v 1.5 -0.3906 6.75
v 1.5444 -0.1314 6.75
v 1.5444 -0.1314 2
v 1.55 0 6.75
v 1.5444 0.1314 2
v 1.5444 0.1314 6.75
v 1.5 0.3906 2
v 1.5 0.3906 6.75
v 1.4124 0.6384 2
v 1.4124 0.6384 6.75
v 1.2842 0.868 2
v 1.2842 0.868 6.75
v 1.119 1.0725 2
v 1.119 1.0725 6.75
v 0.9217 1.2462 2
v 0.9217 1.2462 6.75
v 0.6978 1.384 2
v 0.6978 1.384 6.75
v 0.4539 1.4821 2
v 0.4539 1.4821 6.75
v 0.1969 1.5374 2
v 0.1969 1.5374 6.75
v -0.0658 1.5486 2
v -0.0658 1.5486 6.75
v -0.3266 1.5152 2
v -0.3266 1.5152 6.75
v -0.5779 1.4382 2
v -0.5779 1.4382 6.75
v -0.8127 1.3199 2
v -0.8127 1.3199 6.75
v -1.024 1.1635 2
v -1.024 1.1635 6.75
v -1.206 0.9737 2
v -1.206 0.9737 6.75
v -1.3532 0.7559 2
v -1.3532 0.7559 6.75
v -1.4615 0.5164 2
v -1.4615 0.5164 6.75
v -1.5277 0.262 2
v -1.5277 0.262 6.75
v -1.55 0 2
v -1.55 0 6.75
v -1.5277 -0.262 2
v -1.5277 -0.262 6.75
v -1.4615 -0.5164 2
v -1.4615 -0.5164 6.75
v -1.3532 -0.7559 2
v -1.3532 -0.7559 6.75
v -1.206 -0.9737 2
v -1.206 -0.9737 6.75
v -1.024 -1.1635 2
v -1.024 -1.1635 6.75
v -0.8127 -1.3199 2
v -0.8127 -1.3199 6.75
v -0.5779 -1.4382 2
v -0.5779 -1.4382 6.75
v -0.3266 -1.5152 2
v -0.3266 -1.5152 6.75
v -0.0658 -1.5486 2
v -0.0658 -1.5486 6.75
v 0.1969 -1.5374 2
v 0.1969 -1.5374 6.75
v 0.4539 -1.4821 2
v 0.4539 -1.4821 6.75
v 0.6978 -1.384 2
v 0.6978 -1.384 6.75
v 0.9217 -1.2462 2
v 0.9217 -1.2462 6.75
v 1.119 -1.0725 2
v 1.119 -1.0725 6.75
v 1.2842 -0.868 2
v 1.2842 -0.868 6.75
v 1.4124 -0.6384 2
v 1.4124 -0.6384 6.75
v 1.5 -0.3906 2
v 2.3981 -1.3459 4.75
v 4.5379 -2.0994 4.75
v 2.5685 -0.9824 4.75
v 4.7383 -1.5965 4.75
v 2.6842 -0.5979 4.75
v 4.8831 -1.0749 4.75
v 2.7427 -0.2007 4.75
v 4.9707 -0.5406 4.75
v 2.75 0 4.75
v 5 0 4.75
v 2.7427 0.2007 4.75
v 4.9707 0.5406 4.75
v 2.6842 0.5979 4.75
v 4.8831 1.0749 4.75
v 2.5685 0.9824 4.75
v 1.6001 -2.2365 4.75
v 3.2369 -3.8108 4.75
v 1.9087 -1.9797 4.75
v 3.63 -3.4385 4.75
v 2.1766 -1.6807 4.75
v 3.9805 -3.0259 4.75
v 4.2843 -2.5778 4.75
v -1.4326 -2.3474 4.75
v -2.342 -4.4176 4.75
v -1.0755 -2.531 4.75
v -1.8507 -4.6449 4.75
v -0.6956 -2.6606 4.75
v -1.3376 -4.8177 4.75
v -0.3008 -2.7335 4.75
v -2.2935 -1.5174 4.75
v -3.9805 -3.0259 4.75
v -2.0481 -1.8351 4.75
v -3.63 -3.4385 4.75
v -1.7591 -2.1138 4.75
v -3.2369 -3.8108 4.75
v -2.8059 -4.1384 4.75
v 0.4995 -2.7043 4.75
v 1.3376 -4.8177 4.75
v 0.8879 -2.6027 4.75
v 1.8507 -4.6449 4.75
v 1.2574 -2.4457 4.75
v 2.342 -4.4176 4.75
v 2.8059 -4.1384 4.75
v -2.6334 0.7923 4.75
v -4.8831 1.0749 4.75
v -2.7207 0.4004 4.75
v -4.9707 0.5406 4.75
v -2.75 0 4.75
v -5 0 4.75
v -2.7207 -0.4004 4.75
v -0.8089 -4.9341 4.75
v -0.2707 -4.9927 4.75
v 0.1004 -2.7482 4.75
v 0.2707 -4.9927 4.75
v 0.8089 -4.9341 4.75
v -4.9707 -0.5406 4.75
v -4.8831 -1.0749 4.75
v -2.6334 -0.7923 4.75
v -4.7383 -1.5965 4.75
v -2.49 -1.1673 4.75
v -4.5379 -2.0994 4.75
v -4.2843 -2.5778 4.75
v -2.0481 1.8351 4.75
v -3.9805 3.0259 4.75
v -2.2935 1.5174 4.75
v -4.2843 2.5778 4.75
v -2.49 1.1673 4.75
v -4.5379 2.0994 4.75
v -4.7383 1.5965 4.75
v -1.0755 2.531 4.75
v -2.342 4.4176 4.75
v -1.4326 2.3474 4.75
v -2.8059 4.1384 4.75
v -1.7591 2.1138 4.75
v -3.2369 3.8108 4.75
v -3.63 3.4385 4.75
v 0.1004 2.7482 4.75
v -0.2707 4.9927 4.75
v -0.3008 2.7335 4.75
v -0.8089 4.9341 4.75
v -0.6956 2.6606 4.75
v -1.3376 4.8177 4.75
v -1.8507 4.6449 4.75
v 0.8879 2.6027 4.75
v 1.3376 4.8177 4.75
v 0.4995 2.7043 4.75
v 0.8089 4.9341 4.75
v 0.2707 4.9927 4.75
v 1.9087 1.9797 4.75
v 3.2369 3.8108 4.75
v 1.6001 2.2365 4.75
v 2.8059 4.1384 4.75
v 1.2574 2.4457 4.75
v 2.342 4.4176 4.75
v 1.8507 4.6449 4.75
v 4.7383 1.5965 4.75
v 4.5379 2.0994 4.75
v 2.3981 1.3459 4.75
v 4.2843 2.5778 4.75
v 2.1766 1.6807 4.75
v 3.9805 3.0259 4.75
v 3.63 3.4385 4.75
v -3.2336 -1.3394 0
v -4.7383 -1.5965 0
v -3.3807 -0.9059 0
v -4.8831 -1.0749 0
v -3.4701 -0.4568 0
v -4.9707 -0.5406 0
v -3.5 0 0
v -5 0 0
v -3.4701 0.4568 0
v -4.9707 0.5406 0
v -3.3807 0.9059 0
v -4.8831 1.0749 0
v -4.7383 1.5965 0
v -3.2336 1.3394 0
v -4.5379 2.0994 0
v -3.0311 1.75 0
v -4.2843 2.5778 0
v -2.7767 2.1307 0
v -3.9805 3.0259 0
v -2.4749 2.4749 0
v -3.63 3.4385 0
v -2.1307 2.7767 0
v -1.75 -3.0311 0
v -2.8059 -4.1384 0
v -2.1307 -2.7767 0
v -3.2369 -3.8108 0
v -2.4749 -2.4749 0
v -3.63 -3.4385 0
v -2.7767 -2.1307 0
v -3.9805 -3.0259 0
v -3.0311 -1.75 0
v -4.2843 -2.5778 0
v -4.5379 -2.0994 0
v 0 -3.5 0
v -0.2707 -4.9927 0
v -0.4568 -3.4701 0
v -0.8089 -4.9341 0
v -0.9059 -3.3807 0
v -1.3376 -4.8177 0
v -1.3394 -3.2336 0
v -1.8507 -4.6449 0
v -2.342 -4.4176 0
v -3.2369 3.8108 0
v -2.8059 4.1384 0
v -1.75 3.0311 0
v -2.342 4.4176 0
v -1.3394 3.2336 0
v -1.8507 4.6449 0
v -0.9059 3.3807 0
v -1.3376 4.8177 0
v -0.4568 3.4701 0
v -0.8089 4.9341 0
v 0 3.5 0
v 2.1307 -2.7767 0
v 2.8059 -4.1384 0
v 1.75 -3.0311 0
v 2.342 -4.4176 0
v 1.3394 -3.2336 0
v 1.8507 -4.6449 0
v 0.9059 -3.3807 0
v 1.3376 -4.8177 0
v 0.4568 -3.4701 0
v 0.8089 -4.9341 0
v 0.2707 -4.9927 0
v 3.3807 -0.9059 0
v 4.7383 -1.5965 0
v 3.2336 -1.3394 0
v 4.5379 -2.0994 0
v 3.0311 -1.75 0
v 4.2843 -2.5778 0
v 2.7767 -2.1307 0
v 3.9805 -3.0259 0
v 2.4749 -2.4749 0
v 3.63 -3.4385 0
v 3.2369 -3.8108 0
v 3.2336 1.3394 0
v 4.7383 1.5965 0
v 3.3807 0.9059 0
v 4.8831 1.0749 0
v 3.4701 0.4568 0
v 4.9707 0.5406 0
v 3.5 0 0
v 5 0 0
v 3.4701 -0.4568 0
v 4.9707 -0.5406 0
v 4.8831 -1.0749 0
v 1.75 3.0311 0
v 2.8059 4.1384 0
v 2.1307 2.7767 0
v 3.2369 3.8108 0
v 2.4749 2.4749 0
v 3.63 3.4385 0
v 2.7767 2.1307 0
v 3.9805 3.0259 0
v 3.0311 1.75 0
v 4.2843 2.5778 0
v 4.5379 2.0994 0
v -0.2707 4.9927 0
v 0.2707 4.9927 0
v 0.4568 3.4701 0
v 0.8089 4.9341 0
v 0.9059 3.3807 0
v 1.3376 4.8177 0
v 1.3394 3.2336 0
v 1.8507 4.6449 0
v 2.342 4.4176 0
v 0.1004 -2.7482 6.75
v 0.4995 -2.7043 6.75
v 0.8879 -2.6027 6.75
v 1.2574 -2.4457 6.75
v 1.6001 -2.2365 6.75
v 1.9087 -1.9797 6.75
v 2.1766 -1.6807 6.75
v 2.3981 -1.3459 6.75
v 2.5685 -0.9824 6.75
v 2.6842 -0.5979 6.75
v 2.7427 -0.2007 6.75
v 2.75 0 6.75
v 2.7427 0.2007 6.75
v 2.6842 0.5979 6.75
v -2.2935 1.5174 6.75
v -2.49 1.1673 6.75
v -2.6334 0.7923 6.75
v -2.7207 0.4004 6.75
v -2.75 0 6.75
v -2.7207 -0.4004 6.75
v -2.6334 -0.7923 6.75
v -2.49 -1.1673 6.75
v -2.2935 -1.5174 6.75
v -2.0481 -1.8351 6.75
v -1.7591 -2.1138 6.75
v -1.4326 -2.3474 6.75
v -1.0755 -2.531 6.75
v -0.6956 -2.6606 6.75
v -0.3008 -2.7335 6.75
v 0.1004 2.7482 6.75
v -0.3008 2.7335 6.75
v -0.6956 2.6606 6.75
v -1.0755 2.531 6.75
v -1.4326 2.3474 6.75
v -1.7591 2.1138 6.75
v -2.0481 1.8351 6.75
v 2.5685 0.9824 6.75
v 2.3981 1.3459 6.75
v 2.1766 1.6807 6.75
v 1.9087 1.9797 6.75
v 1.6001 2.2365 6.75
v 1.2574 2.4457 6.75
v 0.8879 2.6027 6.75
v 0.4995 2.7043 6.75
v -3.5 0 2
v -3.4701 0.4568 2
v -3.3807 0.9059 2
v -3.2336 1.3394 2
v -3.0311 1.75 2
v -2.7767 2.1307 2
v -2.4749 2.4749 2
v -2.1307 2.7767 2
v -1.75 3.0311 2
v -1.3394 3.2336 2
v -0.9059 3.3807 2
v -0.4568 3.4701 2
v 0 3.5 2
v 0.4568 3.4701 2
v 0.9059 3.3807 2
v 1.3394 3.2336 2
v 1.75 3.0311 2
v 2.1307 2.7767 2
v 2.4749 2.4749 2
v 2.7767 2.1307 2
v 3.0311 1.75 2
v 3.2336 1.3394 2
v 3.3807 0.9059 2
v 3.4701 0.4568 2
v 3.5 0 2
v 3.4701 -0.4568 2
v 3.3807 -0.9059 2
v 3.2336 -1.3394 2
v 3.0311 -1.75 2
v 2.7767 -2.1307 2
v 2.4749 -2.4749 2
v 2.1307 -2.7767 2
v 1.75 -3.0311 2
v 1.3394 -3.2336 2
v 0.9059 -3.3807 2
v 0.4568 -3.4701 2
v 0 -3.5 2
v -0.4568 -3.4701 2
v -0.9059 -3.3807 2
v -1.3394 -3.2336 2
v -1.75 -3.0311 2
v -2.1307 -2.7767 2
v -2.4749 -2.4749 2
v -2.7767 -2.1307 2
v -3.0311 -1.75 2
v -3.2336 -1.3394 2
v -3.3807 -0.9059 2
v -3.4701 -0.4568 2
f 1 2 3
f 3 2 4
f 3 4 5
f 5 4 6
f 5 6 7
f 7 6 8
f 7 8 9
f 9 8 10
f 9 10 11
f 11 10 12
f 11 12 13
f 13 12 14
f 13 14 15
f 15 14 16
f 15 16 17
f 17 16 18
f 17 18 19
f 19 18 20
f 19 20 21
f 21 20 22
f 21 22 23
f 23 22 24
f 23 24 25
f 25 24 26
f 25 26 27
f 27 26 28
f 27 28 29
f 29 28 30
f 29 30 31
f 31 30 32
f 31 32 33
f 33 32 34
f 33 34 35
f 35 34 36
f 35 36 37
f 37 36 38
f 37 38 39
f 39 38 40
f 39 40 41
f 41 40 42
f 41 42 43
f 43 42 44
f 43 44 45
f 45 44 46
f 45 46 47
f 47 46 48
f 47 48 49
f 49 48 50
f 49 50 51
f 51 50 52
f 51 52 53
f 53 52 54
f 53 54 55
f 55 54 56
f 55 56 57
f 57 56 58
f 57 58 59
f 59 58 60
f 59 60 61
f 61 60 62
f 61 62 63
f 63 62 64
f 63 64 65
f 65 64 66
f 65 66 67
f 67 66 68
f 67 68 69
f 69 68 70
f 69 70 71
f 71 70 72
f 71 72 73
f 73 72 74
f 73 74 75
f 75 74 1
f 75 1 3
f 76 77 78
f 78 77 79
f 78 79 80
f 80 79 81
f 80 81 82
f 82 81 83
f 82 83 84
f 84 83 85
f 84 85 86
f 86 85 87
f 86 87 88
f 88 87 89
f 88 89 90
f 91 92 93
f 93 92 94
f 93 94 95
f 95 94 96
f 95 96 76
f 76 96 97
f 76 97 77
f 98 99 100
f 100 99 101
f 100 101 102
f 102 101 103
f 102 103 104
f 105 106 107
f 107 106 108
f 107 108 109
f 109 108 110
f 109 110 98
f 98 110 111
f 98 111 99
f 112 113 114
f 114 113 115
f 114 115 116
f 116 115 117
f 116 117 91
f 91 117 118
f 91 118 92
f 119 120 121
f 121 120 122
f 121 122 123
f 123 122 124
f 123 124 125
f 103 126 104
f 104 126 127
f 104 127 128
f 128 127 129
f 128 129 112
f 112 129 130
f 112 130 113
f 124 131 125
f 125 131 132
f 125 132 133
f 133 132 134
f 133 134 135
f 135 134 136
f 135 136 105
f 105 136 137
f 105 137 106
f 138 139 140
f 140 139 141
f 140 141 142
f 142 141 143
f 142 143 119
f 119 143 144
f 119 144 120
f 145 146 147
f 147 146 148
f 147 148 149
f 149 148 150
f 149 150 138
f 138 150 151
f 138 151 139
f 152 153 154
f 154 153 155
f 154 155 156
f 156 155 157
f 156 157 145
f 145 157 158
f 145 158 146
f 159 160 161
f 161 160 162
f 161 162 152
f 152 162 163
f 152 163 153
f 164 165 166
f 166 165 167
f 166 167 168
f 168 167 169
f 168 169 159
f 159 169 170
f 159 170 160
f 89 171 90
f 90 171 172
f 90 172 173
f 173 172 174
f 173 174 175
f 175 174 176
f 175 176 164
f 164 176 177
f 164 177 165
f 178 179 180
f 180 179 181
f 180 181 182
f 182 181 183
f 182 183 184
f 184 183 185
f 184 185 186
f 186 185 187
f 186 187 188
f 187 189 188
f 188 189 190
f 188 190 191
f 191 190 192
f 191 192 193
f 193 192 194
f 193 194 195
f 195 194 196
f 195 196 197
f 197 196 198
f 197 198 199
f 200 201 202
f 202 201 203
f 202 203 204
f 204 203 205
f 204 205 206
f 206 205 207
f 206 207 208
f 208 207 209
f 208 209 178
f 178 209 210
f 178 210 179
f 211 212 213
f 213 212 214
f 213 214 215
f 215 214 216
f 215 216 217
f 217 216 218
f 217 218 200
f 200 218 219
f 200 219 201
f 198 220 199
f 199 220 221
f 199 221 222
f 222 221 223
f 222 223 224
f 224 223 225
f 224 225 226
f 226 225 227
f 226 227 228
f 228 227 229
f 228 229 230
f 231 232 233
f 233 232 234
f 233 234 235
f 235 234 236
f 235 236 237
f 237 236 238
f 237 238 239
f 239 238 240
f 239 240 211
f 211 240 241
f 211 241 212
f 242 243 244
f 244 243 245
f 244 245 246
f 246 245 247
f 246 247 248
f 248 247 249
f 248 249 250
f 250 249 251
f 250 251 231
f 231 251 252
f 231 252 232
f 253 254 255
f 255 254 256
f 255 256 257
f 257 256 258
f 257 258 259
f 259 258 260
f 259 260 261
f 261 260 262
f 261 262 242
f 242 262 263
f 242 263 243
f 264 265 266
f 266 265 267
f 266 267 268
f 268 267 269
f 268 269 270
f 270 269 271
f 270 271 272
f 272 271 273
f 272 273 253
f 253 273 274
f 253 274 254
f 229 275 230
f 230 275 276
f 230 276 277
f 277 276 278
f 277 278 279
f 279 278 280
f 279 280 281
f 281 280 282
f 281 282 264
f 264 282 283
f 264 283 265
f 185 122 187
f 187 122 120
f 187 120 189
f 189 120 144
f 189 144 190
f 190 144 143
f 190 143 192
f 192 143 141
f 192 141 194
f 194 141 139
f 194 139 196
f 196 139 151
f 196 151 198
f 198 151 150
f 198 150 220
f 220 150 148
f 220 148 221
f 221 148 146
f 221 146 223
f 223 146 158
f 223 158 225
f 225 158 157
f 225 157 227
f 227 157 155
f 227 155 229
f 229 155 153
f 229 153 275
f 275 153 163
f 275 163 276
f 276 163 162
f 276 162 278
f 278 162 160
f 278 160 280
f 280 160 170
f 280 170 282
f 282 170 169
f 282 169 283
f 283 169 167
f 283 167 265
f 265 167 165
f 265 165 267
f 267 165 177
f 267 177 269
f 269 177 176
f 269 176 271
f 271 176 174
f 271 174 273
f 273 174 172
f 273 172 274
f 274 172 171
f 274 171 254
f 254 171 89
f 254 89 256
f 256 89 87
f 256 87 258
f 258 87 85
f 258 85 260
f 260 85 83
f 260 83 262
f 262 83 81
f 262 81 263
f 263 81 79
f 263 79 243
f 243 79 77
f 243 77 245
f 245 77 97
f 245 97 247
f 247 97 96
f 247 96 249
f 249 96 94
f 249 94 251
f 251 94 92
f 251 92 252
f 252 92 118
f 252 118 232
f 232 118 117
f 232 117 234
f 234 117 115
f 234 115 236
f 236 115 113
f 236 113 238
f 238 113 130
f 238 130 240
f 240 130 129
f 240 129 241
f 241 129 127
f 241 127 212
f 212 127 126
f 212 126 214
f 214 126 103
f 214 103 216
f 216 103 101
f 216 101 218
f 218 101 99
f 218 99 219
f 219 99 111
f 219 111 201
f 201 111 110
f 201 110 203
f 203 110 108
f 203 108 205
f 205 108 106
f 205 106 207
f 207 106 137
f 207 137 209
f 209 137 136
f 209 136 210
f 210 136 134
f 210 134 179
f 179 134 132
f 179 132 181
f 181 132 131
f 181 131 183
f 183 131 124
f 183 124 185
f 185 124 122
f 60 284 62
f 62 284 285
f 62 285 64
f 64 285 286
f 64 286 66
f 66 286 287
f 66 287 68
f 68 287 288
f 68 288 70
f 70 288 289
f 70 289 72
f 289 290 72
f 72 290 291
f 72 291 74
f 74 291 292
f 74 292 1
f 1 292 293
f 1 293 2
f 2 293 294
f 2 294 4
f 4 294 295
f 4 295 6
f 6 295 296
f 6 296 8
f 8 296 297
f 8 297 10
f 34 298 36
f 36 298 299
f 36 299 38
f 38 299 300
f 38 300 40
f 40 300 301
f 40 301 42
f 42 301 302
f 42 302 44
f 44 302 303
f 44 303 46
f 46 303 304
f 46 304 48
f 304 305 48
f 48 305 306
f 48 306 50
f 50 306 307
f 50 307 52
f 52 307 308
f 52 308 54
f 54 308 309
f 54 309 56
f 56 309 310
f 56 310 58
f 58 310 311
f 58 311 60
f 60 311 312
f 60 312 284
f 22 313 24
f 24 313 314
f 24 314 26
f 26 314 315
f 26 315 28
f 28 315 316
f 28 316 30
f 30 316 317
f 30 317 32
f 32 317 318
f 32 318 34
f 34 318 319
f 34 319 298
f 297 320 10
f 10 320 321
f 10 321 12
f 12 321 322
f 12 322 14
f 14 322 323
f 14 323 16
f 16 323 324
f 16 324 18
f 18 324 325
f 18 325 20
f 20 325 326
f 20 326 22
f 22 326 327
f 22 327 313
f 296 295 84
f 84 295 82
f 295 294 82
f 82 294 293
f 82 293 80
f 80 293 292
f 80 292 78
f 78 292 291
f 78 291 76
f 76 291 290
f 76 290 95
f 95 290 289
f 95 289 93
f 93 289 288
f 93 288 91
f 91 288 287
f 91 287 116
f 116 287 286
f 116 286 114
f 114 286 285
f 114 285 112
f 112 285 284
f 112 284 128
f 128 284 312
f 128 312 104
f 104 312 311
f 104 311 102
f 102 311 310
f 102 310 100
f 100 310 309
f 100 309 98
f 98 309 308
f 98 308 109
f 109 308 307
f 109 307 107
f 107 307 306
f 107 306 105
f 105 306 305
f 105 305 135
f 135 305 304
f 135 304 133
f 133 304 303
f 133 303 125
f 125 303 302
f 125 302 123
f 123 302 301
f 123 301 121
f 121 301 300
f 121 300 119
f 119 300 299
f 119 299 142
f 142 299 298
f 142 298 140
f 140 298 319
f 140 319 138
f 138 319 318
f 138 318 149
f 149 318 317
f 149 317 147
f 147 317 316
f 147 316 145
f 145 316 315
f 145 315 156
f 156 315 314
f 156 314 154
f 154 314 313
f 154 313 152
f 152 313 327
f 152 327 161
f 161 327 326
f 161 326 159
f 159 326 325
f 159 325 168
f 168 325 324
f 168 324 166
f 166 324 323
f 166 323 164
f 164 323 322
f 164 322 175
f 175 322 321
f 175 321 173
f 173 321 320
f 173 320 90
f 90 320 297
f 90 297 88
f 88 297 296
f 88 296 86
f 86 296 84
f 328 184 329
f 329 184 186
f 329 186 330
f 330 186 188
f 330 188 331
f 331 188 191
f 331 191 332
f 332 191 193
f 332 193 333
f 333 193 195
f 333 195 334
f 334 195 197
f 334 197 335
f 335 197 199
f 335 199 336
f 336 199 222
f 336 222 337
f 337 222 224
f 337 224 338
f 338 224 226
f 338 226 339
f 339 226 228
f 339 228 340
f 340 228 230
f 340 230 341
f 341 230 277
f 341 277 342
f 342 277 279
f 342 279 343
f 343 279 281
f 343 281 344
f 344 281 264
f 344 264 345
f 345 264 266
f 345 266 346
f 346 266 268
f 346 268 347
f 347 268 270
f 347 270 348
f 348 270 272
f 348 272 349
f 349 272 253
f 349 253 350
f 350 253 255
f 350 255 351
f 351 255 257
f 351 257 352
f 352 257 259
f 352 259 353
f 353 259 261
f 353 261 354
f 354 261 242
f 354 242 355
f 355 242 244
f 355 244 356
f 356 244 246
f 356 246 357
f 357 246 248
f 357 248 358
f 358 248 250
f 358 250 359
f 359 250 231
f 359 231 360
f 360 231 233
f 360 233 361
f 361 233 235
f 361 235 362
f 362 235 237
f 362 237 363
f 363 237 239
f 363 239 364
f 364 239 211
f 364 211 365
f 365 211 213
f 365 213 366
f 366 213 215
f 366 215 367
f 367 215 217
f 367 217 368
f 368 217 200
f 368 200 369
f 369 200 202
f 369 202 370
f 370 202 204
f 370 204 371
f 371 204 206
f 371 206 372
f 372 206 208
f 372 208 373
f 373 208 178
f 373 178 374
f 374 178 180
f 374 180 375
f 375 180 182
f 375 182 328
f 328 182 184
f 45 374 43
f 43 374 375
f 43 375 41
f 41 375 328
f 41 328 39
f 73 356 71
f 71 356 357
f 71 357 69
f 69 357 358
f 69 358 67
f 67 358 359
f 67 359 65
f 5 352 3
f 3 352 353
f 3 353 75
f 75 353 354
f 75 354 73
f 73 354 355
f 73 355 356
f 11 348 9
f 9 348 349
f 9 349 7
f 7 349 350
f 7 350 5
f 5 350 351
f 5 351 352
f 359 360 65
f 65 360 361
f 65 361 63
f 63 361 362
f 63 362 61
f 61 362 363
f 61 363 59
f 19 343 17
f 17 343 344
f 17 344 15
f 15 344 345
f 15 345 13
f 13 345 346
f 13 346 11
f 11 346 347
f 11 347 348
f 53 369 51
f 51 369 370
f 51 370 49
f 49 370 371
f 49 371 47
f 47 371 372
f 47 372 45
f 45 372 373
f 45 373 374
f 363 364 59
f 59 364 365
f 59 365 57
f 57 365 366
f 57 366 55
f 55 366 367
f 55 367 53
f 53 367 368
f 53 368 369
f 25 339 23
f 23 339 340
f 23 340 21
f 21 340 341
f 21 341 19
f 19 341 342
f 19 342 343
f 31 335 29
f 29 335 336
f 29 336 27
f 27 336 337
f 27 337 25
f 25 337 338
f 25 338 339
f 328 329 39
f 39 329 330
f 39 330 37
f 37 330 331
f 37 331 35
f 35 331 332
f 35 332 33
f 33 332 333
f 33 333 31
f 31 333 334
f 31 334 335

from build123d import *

# Parameters (mm, degrees)
SKETCH_1_R          = 5
SKETCH_1_R_2        = 1.55
EXTRUDE_1_DEPTH     = 4.75
SKETCH_2_R          = 2.75
SKETCH_2_R_2        = 1.55
EXTRUDE_2_DEPTH     = 2
SKETCH_3_R          = 3.5
SKETCH_3_R_2        = 1.55
CUT_EXTRUDE_1_DEPTH = 2


with BuildPart() as part:
    # 草图1 → 凸台-拉伸1 (new body)
    with BuildSketch(Plane.XY):
        Circle(SKETCH_1_R)
        Circle(SKETCH_1_R_2, mode=Mode.SUBTRACT)
    extrude(amount=EXTRUDE_1_DEPTH)

    # 草图2 → 凸台-拉伸2 (add)
    with BuildSketch(Plane.XY.offset(4.75)):
        Circle(SKETCH_2_R)
        Circle(SKETCH_2_R_2, mode=Mode.SUBTRACT)
    extrude(amount=EXTRUDE_2_DEPTH)

    # 草图3 → 切除-拉伸1 (cut)
    with BuildSketch(Plane(origin=(0, 0, 0), x_dir=(-1, 0, 0), z_dir=(0, 0, -1))):
        Circle(SKETCH_3_R)
        Circle(SKETCH_3_R_2, mode=Mode.SUBTRACT)
    extrude(amount=-CUT_EXTRUDE_1_DEPTH, mode=Mode.SUBTRACT)


solid = part.part
